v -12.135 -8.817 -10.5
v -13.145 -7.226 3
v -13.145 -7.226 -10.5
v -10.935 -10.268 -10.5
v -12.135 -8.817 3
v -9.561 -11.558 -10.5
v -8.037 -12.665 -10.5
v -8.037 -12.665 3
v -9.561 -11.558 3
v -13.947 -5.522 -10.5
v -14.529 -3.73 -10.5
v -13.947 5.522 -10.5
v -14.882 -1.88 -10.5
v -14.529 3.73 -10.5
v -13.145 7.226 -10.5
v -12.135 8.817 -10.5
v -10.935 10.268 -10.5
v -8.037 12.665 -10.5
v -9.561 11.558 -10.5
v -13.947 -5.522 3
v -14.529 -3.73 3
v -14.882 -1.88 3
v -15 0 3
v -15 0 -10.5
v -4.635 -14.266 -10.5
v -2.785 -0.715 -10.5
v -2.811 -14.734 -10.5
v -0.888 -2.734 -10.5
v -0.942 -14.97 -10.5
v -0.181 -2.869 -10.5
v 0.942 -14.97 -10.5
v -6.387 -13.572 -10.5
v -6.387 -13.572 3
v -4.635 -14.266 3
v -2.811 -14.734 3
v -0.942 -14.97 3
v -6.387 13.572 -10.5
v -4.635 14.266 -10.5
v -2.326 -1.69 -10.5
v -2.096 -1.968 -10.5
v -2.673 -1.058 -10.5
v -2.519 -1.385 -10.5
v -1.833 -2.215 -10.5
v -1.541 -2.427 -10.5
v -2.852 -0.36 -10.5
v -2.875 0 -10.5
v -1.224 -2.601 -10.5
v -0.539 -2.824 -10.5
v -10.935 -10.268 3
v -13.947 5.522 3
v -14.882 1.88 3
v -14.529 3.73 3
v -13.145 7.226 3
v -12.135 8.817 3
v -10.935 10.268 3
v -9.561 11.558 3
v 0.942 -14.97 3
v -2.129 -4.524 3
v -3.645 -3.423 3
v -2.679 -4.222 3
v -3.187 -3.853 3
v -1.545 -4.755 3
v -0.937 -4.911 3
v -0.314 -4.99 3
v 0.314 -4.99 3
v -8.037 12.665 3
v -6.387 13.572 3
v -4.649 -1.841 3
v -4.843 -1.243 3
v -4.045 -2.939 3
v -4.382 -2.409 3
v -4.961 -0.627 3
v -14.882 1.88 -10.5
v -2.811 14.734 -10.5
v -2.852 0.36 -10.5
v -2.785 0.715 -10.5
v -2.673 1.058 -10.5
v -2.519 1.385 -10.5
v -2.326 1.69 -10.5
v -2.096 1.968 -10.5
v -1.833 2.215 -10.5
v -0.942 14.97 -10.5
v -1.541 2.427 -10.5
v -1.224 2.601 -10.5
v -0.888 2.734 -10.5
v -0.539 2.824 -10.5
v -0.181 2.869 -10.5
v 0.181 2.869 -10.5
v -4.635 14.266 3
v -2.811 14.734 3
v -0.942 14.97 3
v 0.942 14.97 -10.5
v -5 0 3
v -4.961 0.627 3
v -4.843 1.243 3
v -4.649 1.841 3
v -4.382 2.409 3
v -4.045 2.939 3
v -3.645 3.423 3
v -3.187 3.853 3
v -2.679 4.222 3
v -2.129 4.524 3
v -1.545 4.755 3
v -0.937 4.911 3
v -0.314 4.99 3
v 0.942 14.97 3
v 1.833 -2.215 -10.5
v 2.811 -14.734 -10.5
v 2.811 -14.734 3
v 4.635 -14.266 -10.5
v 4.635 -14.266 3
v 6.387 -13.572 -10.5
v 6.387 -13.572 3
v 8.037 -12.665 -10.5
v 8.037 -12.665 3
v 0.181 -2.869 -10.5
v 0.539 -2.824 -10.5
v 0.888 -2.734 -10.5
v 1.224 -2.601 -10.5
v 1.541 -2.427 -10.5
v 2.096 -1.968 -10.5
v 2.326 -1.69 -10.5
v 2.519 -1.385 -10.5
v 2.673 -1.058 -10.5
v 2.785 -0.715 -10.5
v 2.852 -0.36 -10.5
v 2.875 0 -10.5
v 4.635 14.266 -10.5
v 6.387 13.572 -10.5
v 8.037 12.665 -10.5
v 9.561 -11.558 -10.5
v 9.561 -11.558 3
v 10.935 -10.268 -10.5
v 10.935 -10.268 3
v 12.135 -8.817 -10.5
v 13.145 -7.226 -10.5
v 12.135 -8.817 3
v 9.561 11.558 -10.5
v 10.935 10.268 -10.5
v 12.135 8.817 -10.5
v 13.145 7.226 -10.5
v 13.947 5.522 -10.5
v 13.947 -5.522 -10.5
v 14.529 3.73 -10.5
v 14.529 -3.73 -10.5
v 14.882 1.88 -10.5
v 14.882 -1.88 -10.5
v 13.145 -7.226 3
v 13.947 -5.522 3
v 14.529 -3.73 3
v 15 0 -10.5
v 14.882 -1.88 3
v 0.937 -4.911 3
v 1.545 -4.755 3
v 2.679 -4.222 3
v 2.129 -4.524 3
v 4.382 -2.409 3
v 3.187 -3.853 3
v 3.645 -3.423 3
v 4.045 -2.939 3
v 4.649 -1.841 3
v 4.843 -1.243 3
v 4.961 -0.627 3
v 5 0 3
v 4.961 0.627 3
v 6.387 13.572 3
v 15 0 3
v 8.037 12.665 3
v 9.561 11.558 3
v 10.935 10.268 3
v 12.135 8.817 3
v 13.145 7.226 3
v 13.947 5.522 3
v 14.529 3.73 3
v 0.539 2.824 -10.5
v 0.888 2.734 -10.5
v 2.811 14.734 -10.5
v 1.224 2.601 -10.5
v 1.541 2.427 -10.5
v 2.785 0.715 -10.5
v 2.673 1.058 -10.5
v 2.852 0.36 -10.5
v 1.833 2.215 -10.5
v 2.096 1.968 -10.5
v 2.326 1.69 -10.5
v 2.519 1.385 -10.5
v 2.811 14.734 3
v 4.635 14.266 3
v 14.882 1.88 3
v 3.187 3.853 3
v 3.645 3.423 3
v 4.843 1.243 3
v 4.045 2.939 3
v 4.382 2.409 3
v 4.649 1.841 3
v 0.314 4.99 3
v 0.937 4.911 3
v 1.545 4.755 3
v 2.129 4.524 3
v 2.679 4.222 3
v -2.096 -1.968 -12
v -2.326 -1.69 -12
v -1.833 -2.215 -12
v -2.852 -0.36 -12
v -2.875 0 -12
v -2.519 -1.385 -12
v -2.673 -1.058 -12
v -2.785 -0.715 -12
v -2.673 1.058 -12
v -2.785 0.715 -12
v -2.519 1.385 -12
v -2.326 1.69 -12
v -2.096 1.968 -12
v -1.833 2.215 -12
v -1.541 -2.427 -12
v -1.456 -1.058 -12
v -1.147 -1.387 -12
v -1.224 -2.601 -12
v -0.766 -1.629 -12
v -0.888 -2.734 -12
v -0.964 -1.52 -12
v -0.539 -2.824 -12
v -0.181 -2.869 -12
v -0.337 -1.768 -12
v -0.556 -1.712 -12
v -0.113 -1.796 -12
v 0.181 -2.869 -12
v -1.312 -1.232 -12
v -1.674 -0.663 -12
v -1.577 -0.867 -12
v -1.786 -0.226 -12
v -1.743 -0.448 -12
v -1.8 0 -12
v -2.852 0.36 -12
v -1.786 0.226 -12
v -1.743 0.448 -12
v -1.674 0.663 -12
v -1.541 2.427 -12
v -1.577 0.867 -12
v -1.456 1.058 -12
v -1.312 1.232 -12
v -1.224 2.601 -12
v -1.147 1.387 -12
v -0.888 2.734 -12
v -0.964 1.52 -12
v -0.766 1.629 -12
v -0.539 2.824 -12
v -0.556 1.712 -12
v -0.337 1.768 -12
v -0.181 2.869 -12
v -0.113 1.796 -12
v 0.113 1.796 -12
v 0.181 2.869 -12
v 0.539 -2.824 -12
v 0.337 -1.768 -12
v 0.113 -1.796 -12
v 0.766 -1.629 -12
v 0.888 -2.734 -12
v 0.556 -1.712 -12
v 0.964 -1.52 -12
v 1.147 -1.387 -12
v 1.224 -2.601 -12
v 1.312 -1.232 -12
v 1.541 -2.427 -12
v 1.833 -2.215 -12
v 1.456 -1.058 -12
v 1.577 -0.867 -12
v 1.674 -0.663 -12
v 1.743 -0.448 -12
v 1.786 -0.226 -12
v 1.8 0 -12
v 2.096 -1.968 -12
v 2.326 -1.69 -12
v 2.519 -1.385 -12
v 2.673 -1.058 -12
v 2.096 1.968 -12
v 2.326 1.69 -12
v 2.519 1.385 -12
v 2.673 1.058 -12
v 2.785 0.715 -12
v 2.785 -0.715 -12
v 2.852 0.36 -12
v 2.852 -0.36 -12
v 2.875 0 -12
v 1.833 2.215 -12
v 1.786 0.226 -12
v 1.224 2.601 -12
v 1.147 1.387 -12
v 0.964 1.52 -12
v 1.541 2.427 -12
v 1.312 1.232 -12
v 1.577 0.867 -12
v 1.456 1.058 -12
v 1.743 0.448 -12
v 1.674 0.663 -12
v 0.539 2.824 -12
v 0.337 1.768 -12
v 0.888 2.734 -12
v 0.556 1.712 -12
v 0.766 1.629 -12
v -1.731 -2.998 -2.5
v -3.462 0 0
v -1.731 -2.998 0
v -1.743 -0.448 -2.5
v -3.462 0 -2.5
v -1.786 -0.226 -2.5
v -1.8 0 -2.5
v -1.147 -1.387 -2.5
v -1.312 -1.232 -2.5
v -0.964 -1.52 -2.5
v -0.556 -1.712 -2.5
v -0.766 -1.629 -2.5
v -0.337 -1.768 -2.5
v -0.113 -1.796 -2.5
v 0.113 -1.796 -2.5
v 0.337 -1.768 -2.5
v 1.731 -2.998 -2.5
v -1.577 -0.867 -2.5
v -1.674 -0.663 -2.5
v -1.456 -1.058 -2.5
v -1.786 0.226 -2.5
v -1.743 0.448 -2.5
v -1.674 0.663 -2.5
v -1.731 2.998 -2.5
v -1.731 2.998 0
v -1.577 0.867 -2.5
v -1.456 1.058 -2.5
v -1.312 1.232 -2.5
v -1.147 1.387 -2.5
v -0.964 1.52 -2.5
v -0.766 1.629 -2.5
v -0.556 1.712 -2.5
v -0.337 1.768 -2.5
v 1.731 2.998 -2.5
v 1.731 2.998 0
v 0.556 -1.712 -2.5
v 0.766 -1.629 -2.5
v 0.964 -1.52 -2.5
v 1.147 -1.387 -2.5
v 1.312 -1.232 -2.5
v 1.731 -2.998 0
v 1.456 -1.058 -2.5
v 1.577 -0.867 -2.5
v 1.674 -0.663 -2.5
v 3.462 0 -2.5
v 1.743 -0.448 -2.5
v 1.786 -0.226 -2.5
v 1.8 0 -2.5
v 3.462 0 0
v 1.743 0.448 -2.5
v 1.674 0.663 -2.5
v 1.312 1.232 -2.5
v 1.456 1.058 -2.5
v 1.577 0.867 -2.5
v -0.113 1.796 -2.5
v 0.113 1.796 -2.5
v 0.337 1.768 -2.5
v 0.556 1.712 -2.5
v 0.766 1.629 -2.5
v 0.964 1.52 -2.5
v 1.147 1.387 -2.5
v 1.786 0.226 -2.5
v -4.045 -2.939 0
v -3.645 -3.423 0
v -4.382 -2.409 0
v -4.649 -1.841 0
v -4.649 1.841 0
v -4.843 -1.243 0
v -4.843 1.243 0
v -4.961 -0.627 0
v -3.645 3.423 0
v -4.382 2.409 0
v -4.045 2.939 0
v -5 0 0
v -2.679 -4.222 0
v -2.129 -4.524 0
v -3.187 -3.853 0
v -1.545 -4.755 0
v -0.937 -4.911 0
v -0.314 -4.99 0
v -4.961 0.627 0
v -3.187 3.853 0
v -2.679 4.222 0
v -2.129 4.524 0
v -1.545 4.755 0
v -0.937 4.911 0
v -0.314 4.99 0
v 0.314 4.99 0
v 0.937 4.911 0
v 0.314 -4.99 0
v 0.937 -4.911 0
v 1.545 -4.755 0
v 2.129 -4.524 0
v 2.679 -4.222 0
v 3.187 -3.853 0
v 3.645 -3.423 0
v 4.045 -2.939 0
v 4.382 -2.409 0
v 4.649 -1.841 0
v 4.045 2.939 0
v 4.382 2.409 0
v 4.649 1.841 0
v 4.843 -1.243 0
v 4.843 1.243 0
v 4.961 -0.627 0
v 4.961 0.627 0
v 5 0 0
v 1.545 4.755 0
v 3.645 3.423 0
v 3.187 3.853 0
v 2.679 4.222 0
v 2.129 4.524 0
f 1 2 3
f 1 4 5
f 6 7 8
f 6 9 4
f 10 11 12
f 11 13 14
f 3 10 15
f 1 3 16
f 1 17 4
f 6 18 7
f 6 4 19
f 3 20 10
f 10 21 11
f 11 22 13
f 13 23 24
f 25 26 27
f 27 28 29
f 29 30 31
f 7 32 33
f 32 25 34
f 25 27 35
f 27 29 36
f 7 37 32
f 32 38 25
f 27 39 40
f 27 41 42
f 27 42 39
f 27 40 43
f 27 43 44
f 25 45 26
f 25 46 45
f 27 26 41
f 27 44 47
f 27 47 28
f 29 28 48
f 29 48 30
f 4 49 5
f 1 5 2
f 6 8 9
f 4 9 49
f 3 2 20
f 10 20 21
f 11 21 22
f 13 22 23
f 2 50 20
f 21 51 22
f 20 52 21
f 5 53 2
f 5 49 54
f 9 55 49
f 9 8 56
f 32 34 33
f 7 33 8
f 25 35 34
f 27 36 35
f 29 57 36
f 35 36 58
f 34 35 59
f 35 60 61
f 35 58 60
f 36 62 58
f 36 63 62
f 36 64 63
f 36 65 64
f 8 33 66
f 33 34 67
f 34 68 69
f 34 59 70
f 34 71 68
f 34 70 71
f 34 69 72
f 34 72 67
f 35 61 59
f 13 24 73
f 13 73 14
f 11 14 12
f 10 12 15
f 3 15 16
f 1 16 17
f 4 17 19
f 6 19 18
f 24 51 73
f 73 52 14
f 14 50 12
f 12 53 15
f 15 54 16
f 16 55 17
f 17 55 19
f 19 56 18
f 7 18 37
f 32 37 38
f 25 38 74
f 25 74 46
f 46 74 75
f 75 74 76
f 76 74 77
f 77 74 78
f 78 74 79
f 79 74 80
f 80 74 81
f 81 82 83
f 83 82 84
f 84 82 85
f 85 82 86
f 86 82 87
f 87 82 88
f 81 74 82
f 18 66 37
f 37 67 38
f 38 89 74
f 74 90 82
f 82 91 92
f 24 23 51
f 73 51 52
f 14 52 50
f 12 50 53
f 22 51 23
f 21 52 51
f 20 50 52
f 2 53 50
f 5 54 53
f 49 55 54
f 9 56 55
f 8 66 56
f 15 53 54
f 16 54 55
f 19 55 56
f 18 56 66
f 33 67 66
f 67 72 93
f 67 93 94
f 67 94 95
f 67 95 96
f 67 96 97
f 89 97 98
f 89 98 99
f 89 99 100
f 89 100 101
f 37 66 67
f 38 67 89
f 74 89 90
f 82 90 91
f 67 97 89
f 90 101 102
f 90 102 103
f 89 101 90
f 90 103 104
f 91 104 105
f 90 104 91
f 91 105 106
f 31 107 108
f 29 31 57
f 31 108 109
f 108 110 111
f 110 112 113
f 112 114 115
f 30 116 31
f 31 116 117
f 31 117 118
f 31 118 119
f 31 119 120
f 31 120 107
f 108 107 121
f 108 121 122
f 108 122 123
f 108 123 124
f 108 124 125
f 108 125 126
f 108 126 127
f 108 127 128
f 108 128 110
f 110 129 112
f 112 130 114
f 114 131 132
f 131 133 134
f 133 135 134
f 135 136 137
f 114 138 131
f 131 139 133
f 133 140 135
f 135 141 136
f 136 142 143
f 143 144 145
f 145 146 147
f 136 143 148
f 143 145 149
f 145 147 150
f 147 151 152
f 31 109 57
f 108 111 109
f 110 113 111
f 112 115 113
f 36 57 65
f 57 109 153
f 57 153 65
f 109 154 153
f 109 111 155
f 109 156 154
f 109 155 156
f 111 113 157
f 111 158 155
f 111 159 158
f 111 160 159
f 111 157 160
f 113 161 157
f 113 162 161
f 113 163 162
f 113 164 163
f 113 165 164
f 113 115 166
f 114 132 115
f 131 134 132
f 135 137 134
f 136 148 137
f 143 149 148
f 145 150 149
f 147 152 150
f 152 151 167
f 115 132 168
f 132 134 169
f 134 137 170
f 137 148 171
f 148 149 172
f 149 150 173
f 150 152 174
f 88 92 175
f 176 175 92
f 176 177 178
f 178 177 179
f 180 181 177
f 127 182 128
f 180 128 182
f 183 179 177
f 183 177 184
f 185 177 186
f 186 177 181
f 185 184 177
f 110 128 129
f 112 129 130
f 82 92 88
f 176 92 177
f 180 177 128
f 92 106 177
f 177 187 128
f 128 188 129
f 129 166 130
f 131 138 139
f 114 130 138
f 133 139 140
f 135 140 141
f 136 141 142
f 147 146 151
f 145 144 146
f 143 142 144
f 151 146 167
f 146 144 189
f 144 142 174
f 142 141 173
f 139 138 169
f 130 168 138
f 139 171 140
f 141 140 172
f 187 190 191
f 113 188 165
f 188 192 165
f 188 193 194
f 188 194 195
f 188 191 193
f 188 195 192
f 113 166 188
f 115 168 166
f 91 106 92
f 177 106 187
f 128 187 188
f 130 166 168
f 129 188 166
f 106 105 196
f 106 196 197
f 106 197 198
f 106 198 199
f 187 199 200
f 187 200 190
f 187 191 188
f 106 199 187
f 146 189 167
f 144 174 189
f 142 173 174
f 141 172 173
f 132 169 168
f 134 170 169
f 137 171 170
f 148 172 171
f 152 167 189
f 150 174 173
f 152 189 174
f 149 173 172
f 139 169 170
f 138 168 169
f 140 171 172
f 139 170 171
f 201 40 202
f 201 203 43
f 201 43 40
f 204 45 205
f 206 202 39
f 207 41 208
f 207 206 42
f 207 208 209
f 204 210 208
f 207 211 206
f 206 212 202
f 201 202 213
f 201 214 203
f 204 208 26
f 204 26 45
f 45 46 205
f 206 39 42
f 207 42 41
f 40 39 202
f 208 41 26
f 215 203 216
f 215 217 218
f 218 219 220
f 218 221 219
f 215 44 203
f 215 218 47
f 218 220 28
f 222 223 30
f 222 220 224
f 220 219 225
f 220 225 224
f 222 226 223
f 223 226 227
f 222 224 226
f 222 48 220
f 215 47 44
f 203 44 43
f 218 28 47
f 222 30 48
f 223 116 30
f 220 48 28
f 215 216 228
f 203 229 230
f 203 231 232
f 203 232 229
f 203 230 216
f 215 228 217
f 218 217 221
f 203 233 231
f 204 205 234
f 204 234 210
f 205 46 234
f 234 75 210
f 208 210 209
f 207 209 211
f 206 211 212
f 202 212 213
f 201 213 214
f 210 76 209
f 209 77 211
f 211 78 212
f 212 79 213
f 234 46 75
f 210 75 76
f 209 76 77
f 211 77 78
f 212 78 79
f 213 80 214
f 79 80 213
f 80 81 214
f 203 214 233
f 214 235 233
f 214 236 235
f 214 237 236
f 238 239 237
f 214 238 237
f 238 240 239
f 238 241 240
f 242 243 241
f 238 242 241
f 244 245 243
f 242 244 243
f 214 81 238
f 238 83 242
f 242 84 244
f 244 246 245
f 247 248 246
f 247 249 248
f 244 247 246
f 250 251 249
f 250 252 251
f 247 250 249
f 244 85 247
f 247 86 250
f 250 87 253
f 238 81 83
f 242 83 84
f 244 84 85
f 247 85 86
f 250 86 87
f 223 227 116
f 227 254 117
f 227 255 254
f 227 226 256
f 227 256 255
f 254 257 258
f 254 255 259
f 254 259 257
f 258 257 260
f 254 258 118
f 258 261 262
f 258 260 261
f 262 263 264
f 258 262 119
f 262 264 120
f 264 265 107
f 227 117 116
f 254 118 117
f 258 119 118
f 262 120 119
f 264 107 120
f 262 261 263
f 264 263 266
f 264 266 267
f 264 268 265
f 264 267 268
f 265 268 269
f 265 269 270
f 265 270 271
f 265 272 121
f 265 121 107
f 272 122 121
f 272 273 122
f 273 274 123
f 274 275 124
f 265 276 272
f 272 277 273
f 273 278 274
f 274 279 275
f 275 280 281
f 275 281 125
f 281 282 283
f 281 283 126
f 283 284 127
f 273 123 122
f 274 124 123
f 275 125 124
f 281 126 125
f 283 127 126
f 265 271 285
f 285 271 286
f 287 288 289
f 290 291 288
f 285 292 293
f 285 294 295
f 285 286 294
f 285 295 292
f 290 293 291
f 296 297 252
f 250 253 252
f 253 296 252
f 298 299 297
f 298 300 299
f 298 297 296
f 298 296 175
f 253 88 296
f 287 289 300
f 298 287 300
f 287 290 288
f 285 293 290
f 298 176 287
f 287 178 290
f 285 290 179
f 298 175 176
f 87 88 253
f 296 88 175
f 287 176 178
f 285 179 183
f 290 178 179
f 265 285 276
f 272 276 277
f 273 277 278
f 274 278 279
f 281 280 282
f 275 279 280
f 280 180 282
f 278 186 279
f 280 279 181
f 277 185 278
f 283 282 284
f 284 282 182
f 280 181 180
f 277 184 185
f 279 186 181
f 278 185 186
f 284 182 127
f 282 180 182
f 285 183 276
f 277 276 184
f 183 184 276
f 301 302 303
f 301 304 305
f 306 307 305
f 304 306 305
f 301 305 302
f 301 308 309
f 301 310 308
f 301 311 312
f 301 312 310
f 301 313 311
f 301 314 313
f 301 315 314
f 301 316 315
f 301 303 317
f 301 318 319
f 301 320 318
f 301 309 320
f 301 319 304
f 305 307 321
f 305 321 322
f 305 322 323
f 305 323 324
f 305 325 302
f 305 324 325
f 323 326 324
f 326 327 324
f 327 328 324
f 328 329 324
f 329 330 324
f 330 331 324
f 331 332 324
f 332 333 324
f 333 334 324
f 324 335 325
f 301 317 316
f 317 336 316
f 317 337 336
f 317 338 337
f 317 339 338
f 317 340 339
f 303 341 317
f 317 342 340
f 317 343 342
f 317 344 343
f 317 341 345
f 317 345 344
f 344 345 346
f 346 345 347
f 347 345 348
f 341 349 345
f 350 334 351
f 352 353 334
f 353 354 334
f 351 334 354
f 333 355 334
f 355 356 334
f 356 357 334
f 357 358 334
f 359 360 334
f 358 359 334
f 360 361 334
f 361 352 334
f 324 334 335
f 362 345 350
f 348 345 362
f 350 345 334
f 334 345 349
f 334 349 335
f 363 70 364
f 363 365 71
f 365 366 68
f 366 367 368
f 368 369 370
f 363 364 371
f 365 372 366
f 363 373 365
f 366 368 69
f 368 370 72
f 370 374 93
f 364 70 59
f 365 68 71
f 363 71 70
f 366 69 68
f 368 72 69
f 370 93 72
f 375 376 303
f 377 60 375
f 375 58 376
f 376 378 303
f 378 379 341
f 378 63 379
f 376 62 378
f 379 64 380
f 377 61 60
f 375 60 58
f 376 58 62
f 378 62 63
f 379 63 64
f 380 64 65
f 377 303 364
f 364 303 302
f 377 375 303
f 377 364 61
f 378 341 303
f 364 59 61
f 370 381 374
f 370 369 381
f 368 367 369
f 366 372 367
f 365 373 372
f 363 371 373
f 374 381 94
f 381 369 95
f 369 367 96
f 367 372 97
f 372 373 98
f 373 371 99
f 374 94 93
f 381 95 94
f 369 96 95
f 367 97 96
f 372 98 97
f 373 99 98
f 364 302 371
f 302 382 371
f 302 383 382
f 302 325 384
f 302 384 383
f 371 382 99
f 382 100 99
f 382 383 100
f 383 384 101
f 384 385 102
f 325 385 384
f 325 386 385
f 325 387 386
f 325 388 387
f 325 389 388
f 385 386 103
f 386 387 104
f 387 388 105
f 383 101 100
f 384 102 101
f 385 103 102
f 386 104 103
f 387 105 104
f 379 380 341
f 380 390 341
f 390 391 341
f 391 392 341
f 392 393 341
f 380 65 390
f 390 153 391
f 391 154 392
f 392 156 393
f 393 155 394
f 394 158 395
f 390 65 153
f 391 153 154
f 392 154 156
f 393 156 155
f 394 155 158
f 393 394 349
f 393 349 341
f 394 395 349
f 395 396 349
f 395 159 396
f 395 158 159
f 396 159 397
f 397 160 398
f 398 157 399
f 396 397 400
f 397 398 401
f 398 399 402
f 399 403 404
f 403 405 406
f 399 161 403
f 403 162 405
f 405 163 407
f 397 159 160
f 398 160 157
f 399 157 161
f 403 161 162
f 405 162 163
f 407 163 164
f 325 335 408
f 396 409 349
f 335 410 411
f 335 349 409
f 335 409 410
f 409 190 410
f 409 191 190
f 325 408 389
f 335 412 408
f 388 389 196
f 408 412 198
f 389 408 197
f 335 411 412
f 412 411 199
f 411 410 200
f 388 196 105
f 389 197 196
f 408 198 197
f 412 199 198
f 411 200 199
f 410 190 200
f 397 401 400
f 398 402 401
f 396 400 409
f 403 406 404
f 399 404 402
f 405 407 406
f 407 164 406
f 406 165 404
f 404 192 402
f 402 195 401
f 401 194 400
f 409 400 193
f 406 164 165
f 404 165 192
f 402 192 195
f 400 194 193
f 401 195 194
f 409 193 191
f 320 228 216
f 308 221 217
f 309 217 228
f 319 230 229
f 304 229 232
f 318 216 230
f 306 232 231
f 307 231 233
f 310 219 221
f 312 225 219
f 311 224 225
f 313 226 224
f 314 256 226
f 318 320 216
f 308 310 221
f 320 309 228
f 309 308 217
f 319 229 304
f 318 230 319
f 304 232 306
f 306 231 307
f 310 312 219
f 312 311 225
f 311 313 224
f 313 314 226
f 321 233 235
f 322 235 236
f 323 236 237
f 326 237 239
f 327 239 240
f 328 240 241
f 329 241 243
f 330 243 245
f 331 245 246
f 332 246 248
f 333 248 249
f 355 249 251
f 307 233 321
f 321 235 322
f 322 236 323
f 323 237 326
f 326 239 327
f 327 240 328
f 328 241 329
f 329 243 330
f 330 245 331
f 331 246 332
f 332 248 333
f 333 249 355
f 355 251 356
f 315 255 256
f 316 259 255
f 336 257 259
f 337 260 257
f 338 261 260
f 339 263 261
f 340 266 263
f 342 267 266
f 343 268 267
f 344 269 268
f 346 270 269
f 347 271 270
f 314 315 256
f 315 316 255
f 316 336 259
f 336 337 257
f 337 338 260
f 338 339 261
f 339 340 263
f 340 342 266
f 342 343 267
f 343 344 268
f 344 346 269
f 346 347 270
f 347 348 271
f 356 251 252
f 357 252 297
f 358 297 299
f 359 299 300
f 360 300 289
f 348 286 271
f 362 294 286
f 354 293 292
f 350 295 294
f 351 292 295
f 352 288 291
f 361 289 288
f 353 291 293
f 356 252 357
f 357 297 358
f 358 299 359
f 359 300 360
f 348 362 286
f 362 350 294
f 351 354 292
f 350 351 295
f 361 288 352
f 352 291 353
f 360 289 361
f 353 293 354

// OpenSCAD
$fn = 50;

difference() {
	union() {
		translate(v = [0, 0, -10.5]) {
			cylinder(h = 13.5, r = 15.0);
		}
		#translate(v = [0, 0, -12.0]) {
			cylinder(h = 12, r = 2.875);
		}
	}
	union() {
		translate(v = [0, 0, 0]) {
			rotate(a = [0, 0, 0]) {
				difference() {
					union() {
						translate(v = [0, 0, -2.5]) {
							linear_extrude(height = 2.5) {
								polygon(points = [[3.4619999999999997, 0.0], [1.7310000000000003, 2.9981799479017264], [-1.7309999999999992, 2.9981799479017264], [-3.4619999999999997, 4.2397272186481365e-16], [-1.7310000000000014, -2.998179947901726], [1.7309999999999977, -2.9981799479017277]]);
							}
						}
					}
					union();
				}
			}
		}
		#cylinder(h = 3, r = 5.0);
		#translate(v = [0, 0, -100.0]) {
			cylinder(h = 200, r = 1.8);
		}
	}
}
